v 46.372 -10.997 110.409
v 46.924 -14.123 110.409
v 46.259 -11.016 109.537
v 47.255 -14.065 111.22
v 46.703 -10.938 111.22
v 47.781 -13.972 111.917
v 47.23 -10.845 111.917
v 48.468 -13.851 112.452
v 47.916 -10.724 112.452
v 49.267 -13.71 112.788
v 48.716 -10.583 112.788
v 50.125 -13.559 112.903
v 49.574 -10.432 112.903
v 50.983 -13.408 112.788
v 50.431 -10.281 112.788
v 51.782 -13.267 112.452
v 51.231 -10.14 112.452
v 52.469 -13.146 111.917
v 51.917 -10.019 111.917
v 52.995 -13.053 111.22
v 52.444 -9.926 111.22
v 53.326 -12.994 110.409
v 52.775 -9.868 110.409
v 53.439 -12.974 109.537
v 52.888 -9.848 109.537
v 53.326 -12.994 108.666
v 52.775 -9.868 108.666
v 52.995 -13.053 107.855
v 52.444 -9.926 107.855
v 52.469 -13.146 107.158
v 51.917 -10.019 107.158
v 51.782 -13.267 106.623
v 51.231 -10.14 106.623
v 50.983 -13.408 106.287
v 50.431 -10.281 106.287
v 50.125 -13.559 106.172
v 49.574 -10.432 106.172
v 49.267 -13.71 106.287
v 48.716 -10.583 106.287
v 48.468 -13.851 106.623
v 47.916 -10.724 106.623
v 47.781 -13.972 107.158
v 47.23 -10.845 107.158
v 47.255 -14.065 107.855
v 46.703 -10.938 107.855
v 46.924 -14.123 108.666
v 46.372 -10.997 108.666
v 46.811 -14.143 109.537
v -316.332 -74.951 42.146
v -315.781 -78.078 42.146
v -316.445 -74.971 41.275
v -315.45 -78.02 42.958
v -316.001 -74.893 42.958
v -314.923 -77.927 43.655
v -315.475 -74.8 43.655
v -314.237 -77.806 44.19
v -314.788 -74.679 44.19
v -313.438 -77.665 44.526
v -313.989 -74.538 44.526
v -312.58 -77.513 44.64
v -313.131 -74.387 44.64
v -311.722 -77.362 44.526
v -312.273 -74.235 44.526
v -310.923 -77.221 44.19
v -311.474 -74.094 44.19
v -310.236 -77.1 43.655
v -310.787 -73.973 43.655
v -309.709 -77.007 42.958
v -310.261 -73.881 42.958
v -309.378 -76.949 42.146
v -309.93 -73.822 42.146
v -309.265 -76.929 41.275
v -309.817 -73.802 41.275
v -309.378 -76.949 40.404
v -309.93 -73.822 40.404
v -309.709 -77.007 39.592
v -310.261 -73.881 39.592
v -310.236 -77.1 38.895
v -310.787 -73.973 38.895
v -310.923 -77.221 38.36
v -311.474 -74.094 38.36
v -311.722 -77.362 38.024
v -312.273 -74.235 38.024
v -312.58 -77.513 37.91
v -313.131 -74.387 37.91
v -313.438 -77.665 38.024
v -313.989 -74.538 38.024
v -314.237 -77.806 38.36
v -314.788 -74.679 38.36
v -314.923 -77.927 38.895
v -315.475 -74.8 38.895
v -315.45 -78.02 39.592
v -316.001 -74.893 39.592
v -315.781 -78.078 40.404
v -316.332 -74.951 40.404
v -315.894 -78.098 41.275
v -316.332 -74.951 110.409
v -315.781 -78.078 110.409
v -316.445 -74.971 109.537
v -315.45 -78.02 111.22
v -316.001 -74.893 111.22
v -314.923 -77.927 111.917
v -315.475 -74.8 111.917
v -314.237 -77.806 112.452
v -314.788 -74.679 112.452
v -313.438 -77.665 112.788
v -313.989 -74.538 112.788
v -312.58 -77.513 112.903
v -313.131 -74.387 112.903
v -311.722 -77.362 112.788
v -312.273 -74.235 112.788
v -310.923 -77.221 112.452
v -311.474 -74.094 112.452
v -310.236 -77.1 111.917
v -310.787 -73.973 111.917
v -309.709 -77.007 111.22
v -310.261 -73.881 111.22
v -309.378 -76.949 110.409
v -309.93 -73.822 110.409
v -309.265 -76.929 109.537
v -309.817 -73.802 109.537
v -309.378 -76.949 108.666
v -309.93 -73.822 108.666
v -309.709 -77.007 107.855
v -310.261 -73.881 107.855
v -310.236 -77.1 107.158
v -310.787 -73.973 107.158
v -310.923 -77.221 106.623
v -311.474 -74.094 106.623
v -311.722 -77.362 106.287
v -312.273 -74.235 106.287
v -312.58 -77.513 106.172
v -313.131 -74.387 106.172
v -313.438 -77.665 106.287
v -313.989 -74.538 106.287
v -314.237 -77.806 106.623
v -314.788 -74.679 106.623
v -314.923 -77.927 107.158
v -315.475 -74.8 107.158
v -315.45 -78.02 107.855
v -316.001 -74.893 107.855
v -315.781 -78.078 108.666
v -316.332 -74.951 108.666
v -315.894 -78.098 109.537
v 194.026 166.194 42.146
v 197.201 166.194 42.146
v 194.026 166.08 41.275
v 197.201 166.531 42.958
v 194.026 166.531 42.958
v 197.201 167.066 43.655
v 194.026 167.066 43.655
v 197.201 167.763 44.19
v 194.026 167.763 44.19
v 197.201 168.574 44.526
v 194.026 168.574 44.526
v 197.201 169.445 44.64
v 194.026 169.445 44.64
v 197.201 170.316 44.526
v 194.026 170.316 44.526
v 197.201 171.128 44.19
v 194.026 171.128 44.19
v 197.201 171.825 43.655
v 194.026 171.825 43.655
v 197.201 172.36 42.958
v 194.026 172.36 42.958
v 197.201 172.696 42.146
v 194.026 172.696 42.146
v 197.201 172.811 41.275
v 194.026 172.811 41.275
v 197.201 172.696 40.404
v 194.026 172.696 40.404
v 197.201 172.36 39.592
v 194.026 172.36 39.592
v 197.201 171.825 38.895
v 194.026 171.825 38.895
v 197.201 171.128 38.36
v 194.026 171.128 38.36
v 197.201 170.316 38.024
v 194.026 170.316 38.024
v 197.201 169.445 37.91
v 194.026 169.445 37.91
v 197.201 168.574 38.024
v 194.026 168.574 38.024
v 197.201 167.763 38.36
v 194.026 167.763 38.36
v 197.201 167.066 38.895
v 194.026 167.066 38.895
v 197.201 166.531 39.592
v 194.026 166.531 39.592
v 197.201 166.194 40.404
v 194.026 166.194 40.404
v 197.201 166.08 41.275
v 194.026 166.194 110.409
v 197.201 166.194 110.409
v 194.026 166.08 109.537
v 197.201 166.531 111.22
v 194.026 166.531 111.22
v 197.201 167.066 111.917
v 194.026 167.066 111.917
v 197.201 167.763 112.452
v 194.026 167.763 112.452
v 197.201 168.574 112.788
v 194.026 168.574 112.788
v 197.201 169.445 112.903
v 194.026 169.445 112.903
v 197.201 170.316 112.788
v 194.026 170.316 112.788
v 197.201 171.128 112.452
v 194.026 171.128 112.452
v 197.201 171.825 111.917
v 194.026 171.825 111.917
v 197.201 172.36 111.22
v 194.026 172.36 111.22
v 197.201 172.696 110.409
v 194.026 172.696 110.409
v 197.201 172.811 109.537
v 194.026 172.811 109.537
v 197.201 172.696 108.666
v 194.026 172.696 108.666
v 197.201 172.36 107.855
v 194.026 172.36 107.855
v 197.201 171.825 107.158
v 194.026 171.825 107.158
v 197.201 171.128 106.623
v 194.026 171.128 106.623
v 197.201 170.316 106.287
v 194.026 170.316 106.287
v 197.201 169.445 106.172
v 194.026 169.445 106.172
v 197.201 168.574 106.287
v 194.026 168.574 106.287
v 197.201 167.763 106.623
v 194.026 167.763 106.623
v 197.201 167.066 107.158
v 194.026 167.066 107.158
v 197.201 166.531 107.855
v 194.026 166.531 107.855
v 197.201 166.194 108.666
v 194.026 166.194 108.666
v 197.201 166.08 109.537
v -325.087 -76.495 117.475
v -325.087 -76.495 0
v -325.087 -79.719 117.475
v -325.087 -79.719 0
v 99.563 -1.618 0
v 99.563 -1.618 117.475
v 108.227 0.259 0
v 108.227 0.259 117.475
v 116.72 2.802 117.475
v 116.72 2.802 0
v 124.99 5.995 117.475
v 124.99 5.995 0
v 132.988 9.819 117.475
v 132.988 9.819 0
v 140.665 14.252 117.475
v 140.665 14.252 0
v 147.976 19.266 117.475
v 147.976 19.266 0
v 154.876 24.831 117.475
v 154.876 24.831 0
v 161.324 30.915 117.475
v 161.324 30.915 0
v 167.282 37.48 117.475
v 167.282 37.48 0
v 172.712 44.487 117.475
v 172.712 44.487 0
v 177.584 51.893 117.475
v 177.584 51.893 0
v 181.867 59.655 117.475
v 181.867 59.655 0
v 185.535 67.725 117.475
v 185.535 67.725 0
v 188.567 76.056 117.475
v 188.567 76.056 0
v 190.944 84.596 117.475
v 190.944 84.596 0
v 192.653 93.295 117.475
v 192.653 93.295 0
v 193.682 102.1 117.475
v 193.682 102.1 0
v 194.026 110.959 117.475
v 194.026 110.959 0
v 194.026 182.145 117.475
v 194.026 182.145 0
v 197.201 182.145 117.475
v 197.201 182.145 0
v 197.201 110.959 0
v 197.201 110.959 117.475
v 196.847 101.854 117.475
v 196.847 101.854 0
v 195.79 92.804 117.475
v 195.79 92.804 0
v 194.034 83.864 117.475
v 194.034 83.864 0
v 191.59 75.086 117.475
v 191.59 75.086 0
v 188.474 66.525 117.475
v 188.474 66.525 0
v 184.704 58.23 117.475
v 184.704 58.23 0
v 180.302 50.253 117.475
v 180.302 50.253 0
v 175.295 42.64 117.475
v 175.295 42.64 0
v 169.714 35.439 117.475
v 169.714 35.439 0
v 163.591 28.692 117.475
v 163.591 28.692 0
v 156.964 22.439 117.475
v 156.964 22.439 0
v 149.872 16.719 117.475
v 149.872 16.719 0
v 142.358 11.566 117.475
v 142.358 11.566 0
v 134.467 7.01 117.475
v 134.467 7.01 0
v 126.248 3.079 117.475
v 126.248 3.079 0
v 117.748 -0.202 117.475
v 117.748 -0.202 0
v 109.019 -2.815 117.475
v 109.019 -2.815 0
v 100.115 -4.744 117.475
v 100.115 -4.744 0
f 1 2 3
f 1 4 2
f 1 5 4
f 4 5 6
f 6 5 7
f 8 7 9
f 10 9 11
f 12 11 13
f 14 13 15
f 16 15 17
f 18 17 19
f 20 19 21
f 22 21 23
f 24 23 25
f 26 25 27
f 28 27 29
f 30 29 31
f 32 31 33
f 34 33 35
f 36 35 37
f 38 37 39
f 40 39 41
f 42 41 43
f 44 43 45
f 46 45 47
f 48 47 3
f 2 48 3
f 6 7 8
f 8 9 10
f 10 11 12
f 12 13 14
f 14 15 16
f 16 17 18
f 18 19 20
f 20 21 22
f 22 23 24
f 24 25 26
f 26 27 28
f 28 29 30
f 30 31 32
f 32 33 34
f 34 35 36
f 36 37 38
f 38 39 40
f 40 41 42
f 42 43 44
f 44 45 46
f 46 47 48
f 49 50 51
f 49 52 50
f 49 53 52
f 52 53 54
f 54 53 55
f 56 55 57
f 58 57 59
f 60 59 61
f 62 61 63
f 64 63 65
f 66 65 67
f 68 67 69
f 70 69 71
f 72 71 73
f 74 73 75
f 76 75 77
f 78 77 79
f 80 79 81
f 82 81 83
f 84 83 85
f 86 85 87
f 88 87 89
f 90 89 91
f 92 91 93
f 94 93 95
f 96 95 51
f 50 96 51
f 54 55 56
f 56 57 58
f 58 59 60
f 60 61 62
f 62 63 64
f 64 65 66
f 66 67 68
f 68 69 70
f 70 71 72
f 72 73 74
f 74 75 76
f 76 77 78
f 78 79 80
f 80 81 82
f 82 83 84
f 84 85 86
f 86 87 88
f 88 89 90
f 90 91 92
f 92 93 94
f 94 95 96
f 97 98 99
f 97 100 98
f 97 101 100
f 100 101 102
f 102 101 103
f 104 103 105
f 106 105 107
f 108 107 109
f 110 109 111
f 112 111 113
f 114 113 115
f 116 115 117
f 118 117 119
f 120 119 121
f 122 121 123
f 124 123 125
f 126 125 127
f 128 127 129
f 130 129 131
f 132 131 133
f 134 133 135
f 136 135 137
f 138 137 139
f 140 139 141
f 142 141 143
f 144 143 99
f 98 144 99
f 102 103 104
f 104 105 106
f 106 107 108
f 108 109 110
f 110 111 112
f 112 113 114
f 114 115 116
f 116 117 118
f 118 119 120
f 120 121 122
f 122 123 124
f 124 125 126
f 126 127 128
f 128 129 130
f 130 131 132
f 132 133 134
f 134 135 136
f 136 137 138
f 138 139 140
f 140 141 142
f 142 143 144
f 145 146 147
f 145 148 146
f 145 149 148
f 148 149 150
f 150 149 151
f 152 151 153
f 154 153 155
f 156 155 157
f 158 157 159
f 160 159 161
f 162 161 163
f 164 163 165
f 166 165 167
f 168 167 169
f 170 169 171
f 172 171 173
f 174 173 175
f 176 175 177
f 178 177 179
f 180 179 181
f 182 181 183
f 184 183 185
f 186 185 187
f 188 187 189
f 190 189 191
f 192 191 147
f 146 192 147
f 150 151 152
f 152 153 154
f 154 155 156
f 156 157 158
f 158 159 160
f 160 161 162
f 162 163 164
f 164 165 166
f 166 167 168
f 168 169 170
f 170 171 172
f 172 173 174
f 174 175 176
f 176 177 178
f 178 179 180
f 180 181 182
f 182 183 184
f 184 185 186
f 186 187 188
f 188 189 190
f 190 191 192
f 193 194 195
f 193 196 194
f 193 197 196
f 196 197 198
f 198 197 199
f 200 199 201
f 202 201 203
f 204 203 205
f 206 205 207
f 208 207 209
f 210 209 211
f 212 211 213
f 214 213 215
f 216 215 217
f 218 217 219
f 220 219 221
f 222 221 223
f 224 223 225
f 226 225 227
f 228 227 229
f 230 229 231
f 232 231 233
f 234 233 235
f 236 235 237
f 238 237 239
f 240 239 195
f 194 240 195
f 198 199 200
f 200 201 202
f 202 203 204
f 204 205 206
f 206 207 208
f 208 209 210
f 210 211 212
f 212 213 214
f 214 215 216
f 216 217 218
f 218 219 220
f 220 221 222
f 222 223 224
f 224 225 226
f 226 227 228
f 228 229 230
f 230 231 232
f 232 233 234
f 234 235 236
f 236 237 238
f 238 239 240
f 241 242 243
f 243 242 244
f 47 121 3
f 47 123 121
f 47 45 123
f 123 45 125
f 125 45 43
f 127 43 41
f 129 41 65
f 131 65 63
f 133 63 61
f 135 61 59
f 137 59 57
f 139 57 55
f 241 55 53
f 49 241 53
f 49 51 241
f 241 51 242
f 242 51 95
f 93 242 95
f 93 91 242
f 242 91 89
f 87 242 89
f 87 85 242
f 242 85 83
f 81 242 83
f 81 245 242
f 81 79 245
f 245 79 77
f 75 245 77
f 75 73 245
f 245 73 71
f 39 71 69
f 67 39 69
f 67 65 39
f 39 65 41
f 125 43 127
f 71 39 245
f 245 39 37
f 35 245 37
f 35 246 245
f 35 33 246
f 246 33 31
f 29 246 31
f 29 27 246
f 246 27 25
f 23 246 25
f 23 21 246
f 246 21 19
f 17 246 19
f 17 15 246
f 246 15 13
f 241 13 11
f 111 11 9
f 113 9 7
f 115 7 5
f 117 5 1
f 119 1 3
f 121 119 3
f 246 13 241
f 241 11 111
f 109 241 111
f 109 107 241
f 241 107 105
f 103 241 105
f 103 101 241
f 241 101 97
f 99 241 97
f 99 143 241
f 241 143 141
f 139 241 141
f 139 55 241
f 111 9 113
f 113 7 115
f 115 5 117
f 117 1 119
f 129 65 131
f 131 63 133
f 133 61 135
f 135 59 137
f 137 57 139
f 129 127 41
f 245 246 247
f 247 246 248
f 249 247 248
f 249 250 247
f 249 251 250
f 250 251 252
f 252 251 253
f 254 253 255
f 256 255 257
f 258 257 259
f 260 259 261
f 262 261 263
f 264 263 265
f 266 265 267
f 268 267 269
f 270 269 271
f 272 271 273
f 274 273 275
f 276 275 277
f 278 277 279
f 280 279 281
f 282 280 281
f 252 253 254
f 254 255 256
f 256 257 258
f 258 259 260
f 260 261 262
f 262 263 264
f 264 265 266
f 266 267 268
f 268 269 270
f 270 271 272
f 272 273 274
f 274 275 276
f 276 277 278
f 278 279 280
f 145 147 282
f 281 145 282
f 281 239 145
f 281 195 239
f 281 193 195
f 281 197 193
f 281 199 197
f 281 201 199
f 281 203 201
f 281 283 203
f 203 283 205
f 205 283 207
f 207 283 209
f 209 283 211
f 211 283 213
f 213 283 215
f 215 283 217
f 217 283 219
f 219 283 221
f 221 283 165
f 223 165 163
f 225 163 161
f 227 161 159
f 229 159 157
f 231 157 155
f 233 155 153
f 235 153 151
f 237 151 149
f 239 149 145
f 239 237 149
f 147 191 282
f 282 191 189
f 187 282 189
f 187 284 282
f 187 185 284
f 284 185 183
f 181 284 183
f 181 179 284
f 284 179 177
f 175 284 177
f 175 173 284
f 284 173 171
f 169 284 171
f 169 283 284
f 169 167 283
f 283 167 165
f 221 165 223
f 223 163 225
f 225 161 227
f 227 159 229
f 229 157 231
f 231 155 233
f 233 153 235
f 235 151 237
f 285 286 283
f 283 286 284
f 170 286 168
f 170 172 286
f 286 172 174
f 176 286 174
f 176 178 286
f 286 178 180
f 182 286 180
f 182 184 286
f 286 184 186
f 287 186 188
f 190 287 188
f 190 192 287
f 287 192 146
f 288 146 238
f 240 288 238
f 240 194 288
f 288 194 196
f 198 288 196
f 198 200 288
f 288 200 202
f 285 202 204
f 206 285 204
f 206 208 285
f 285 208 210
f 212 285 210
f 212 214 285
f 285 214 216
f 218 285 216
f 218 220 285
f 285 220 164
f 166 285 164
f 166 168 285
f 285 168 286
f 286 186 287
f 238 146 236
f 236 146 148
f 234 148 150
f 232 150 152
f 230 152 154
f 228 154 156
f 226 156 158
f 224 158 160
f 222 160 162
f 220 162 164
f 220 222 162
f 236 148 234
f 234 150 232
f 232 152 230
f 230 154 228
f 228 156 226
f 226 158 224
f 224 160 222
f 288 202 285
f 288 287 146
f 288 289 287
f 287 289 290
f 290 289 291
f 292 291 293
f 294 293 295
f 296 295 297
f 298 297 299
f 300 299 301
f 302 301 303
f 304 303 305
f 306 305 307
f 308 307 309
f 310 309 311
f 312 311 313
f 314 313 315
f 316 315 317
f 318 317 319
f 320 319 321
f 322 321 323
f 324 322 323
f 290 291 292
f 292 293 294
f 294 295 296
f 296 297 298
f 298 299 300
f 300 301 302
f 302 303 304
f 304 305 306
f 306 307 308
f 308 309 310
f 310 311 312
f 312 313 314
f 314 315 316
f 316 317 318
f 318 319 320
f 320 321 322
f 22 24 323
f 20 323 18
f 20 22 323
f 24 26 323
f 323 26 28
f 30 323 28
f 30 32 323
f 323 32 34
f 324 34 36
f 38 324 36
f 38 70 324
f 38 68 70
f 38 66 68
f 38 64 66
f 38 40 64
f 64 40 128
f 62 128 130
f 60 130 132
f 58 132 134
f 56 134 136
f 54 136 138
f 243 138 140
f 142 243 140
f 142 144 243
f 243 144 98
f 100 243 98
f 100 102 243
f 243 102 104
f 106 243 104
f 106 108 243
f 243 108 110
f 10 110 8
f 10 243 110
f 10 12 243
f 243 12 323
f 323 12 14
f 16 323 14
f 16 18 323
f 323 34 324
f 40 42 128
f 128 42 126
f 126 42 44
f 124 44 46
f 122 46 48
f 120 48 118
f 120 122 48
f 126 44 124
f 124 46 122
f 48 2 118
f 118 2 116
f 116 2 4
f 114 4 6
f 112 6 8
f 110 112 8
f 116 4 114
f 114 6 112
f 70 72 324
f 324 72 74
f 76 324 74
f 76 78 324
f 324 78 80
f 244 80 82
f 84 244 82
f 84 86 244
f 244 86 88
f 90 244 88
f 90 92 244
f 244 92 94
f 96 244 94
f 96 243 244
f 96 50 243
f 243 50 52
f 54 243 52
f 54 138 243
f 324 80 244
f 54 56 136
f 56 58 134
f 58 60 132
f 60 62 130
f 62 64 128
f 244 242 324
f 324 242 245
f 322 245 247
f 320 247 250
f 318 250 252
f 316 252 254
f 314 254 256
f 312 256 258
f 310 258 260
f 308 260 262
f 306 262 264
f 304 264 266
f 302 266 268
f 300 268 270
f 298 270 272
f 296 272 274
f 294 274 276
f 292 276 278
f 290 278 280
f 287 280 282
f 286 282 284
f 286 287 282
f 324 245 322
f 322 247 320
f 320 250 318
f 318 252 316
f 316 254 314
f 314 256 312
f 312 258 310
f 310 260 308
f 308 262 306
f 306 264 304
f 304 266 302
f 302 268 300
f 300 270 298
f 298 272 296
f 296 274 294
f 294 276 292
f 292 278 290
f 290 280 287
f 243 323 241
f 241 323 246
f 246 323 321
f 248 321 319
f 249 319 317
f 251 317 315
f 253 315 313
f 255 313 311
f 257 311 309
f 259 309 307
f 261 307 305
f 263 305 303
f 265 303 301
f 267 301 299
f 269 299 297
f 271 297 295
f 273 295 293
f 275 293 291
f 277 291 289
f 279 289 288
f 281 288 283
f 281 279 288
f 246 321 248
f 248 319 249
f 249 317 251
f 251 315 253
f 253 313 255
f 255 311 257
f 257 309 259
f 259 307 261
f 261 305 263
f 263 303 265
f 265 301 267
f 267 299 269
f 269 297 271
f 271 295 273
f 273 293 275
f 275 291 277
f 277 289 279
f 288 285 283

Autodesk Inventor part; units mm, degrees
ref_plane "YZ Plane" through (0, 0, 0) normal (1, 0, 0) x (0, 1, 0)
ref_plane "XZ Plane" through (0, 0, 0) normal (0, 1, 0) x (-1, 0, 0)
ref_plane "XY Plane" through (0, 0, 0) normal (0, 0, 1) x (1, 0, 0)
sketch "Sketch1" plane through (0, 0, 0) normal (0, 0, 1) x (1, 0, 0)
  line L0 (-325.0867, -79.7187) -> (100.1146, -4.7443) projected
  arc A0 (100.1146, -4.7443) -> (197.2008, 110.9585) centre (79.7131, 110.9585) ccw projected
  line L1 (197.2008, 110.9585) -> (197.2008, 182.1453) projected
  line L2 (194.0258, 182.1453) -> (197.2008, 182.1453) projected
  line L3 (194.0258, 182.1453) -> (194.0258, 110.9585) projected
  arc A1 (99.5632, -1.6175) -> (194.0258, 110.9585) centre (79.7131, 110.9585) ccw projected
  line L4 (99.5632, -1.6175) -> (-325.0867, -76.4948) projected
  line L5 (-325.0867, -79.7187) -> (-325.0867, -76.4948) projected
  point P0 (0, 0)
extrude "Extrusion1" add sketch "Sketch1" along normal blind 117.475
hole "Hole1" at (197.2008, 169.4453, 109.5375) direction (-1, 0, 0) diameter 6.731 depth 25.4 tip angle 118
pattern_linear "Rectangular Pattern1" count 2 spacing 68.2625 along (0, 0, -1) of "Hole1"
hole "Hole2" at (-312.5797, -77.5134, 109.5375) direction (-0.1736482, 0.9848078, 0) diameter 6.731 depth 25.4 tip angle 118
pattern_linear "Rectangular Pattern2" count 2 spacing 68.2625 along (0, 0, -1) of "Hole2"
pattern_linear "Rectangular Pattern3" count 2 spacing 368.3 along (0.9848078, 0.1736482, 0) of "Hole2"
properties part number "GE-12087-02"
